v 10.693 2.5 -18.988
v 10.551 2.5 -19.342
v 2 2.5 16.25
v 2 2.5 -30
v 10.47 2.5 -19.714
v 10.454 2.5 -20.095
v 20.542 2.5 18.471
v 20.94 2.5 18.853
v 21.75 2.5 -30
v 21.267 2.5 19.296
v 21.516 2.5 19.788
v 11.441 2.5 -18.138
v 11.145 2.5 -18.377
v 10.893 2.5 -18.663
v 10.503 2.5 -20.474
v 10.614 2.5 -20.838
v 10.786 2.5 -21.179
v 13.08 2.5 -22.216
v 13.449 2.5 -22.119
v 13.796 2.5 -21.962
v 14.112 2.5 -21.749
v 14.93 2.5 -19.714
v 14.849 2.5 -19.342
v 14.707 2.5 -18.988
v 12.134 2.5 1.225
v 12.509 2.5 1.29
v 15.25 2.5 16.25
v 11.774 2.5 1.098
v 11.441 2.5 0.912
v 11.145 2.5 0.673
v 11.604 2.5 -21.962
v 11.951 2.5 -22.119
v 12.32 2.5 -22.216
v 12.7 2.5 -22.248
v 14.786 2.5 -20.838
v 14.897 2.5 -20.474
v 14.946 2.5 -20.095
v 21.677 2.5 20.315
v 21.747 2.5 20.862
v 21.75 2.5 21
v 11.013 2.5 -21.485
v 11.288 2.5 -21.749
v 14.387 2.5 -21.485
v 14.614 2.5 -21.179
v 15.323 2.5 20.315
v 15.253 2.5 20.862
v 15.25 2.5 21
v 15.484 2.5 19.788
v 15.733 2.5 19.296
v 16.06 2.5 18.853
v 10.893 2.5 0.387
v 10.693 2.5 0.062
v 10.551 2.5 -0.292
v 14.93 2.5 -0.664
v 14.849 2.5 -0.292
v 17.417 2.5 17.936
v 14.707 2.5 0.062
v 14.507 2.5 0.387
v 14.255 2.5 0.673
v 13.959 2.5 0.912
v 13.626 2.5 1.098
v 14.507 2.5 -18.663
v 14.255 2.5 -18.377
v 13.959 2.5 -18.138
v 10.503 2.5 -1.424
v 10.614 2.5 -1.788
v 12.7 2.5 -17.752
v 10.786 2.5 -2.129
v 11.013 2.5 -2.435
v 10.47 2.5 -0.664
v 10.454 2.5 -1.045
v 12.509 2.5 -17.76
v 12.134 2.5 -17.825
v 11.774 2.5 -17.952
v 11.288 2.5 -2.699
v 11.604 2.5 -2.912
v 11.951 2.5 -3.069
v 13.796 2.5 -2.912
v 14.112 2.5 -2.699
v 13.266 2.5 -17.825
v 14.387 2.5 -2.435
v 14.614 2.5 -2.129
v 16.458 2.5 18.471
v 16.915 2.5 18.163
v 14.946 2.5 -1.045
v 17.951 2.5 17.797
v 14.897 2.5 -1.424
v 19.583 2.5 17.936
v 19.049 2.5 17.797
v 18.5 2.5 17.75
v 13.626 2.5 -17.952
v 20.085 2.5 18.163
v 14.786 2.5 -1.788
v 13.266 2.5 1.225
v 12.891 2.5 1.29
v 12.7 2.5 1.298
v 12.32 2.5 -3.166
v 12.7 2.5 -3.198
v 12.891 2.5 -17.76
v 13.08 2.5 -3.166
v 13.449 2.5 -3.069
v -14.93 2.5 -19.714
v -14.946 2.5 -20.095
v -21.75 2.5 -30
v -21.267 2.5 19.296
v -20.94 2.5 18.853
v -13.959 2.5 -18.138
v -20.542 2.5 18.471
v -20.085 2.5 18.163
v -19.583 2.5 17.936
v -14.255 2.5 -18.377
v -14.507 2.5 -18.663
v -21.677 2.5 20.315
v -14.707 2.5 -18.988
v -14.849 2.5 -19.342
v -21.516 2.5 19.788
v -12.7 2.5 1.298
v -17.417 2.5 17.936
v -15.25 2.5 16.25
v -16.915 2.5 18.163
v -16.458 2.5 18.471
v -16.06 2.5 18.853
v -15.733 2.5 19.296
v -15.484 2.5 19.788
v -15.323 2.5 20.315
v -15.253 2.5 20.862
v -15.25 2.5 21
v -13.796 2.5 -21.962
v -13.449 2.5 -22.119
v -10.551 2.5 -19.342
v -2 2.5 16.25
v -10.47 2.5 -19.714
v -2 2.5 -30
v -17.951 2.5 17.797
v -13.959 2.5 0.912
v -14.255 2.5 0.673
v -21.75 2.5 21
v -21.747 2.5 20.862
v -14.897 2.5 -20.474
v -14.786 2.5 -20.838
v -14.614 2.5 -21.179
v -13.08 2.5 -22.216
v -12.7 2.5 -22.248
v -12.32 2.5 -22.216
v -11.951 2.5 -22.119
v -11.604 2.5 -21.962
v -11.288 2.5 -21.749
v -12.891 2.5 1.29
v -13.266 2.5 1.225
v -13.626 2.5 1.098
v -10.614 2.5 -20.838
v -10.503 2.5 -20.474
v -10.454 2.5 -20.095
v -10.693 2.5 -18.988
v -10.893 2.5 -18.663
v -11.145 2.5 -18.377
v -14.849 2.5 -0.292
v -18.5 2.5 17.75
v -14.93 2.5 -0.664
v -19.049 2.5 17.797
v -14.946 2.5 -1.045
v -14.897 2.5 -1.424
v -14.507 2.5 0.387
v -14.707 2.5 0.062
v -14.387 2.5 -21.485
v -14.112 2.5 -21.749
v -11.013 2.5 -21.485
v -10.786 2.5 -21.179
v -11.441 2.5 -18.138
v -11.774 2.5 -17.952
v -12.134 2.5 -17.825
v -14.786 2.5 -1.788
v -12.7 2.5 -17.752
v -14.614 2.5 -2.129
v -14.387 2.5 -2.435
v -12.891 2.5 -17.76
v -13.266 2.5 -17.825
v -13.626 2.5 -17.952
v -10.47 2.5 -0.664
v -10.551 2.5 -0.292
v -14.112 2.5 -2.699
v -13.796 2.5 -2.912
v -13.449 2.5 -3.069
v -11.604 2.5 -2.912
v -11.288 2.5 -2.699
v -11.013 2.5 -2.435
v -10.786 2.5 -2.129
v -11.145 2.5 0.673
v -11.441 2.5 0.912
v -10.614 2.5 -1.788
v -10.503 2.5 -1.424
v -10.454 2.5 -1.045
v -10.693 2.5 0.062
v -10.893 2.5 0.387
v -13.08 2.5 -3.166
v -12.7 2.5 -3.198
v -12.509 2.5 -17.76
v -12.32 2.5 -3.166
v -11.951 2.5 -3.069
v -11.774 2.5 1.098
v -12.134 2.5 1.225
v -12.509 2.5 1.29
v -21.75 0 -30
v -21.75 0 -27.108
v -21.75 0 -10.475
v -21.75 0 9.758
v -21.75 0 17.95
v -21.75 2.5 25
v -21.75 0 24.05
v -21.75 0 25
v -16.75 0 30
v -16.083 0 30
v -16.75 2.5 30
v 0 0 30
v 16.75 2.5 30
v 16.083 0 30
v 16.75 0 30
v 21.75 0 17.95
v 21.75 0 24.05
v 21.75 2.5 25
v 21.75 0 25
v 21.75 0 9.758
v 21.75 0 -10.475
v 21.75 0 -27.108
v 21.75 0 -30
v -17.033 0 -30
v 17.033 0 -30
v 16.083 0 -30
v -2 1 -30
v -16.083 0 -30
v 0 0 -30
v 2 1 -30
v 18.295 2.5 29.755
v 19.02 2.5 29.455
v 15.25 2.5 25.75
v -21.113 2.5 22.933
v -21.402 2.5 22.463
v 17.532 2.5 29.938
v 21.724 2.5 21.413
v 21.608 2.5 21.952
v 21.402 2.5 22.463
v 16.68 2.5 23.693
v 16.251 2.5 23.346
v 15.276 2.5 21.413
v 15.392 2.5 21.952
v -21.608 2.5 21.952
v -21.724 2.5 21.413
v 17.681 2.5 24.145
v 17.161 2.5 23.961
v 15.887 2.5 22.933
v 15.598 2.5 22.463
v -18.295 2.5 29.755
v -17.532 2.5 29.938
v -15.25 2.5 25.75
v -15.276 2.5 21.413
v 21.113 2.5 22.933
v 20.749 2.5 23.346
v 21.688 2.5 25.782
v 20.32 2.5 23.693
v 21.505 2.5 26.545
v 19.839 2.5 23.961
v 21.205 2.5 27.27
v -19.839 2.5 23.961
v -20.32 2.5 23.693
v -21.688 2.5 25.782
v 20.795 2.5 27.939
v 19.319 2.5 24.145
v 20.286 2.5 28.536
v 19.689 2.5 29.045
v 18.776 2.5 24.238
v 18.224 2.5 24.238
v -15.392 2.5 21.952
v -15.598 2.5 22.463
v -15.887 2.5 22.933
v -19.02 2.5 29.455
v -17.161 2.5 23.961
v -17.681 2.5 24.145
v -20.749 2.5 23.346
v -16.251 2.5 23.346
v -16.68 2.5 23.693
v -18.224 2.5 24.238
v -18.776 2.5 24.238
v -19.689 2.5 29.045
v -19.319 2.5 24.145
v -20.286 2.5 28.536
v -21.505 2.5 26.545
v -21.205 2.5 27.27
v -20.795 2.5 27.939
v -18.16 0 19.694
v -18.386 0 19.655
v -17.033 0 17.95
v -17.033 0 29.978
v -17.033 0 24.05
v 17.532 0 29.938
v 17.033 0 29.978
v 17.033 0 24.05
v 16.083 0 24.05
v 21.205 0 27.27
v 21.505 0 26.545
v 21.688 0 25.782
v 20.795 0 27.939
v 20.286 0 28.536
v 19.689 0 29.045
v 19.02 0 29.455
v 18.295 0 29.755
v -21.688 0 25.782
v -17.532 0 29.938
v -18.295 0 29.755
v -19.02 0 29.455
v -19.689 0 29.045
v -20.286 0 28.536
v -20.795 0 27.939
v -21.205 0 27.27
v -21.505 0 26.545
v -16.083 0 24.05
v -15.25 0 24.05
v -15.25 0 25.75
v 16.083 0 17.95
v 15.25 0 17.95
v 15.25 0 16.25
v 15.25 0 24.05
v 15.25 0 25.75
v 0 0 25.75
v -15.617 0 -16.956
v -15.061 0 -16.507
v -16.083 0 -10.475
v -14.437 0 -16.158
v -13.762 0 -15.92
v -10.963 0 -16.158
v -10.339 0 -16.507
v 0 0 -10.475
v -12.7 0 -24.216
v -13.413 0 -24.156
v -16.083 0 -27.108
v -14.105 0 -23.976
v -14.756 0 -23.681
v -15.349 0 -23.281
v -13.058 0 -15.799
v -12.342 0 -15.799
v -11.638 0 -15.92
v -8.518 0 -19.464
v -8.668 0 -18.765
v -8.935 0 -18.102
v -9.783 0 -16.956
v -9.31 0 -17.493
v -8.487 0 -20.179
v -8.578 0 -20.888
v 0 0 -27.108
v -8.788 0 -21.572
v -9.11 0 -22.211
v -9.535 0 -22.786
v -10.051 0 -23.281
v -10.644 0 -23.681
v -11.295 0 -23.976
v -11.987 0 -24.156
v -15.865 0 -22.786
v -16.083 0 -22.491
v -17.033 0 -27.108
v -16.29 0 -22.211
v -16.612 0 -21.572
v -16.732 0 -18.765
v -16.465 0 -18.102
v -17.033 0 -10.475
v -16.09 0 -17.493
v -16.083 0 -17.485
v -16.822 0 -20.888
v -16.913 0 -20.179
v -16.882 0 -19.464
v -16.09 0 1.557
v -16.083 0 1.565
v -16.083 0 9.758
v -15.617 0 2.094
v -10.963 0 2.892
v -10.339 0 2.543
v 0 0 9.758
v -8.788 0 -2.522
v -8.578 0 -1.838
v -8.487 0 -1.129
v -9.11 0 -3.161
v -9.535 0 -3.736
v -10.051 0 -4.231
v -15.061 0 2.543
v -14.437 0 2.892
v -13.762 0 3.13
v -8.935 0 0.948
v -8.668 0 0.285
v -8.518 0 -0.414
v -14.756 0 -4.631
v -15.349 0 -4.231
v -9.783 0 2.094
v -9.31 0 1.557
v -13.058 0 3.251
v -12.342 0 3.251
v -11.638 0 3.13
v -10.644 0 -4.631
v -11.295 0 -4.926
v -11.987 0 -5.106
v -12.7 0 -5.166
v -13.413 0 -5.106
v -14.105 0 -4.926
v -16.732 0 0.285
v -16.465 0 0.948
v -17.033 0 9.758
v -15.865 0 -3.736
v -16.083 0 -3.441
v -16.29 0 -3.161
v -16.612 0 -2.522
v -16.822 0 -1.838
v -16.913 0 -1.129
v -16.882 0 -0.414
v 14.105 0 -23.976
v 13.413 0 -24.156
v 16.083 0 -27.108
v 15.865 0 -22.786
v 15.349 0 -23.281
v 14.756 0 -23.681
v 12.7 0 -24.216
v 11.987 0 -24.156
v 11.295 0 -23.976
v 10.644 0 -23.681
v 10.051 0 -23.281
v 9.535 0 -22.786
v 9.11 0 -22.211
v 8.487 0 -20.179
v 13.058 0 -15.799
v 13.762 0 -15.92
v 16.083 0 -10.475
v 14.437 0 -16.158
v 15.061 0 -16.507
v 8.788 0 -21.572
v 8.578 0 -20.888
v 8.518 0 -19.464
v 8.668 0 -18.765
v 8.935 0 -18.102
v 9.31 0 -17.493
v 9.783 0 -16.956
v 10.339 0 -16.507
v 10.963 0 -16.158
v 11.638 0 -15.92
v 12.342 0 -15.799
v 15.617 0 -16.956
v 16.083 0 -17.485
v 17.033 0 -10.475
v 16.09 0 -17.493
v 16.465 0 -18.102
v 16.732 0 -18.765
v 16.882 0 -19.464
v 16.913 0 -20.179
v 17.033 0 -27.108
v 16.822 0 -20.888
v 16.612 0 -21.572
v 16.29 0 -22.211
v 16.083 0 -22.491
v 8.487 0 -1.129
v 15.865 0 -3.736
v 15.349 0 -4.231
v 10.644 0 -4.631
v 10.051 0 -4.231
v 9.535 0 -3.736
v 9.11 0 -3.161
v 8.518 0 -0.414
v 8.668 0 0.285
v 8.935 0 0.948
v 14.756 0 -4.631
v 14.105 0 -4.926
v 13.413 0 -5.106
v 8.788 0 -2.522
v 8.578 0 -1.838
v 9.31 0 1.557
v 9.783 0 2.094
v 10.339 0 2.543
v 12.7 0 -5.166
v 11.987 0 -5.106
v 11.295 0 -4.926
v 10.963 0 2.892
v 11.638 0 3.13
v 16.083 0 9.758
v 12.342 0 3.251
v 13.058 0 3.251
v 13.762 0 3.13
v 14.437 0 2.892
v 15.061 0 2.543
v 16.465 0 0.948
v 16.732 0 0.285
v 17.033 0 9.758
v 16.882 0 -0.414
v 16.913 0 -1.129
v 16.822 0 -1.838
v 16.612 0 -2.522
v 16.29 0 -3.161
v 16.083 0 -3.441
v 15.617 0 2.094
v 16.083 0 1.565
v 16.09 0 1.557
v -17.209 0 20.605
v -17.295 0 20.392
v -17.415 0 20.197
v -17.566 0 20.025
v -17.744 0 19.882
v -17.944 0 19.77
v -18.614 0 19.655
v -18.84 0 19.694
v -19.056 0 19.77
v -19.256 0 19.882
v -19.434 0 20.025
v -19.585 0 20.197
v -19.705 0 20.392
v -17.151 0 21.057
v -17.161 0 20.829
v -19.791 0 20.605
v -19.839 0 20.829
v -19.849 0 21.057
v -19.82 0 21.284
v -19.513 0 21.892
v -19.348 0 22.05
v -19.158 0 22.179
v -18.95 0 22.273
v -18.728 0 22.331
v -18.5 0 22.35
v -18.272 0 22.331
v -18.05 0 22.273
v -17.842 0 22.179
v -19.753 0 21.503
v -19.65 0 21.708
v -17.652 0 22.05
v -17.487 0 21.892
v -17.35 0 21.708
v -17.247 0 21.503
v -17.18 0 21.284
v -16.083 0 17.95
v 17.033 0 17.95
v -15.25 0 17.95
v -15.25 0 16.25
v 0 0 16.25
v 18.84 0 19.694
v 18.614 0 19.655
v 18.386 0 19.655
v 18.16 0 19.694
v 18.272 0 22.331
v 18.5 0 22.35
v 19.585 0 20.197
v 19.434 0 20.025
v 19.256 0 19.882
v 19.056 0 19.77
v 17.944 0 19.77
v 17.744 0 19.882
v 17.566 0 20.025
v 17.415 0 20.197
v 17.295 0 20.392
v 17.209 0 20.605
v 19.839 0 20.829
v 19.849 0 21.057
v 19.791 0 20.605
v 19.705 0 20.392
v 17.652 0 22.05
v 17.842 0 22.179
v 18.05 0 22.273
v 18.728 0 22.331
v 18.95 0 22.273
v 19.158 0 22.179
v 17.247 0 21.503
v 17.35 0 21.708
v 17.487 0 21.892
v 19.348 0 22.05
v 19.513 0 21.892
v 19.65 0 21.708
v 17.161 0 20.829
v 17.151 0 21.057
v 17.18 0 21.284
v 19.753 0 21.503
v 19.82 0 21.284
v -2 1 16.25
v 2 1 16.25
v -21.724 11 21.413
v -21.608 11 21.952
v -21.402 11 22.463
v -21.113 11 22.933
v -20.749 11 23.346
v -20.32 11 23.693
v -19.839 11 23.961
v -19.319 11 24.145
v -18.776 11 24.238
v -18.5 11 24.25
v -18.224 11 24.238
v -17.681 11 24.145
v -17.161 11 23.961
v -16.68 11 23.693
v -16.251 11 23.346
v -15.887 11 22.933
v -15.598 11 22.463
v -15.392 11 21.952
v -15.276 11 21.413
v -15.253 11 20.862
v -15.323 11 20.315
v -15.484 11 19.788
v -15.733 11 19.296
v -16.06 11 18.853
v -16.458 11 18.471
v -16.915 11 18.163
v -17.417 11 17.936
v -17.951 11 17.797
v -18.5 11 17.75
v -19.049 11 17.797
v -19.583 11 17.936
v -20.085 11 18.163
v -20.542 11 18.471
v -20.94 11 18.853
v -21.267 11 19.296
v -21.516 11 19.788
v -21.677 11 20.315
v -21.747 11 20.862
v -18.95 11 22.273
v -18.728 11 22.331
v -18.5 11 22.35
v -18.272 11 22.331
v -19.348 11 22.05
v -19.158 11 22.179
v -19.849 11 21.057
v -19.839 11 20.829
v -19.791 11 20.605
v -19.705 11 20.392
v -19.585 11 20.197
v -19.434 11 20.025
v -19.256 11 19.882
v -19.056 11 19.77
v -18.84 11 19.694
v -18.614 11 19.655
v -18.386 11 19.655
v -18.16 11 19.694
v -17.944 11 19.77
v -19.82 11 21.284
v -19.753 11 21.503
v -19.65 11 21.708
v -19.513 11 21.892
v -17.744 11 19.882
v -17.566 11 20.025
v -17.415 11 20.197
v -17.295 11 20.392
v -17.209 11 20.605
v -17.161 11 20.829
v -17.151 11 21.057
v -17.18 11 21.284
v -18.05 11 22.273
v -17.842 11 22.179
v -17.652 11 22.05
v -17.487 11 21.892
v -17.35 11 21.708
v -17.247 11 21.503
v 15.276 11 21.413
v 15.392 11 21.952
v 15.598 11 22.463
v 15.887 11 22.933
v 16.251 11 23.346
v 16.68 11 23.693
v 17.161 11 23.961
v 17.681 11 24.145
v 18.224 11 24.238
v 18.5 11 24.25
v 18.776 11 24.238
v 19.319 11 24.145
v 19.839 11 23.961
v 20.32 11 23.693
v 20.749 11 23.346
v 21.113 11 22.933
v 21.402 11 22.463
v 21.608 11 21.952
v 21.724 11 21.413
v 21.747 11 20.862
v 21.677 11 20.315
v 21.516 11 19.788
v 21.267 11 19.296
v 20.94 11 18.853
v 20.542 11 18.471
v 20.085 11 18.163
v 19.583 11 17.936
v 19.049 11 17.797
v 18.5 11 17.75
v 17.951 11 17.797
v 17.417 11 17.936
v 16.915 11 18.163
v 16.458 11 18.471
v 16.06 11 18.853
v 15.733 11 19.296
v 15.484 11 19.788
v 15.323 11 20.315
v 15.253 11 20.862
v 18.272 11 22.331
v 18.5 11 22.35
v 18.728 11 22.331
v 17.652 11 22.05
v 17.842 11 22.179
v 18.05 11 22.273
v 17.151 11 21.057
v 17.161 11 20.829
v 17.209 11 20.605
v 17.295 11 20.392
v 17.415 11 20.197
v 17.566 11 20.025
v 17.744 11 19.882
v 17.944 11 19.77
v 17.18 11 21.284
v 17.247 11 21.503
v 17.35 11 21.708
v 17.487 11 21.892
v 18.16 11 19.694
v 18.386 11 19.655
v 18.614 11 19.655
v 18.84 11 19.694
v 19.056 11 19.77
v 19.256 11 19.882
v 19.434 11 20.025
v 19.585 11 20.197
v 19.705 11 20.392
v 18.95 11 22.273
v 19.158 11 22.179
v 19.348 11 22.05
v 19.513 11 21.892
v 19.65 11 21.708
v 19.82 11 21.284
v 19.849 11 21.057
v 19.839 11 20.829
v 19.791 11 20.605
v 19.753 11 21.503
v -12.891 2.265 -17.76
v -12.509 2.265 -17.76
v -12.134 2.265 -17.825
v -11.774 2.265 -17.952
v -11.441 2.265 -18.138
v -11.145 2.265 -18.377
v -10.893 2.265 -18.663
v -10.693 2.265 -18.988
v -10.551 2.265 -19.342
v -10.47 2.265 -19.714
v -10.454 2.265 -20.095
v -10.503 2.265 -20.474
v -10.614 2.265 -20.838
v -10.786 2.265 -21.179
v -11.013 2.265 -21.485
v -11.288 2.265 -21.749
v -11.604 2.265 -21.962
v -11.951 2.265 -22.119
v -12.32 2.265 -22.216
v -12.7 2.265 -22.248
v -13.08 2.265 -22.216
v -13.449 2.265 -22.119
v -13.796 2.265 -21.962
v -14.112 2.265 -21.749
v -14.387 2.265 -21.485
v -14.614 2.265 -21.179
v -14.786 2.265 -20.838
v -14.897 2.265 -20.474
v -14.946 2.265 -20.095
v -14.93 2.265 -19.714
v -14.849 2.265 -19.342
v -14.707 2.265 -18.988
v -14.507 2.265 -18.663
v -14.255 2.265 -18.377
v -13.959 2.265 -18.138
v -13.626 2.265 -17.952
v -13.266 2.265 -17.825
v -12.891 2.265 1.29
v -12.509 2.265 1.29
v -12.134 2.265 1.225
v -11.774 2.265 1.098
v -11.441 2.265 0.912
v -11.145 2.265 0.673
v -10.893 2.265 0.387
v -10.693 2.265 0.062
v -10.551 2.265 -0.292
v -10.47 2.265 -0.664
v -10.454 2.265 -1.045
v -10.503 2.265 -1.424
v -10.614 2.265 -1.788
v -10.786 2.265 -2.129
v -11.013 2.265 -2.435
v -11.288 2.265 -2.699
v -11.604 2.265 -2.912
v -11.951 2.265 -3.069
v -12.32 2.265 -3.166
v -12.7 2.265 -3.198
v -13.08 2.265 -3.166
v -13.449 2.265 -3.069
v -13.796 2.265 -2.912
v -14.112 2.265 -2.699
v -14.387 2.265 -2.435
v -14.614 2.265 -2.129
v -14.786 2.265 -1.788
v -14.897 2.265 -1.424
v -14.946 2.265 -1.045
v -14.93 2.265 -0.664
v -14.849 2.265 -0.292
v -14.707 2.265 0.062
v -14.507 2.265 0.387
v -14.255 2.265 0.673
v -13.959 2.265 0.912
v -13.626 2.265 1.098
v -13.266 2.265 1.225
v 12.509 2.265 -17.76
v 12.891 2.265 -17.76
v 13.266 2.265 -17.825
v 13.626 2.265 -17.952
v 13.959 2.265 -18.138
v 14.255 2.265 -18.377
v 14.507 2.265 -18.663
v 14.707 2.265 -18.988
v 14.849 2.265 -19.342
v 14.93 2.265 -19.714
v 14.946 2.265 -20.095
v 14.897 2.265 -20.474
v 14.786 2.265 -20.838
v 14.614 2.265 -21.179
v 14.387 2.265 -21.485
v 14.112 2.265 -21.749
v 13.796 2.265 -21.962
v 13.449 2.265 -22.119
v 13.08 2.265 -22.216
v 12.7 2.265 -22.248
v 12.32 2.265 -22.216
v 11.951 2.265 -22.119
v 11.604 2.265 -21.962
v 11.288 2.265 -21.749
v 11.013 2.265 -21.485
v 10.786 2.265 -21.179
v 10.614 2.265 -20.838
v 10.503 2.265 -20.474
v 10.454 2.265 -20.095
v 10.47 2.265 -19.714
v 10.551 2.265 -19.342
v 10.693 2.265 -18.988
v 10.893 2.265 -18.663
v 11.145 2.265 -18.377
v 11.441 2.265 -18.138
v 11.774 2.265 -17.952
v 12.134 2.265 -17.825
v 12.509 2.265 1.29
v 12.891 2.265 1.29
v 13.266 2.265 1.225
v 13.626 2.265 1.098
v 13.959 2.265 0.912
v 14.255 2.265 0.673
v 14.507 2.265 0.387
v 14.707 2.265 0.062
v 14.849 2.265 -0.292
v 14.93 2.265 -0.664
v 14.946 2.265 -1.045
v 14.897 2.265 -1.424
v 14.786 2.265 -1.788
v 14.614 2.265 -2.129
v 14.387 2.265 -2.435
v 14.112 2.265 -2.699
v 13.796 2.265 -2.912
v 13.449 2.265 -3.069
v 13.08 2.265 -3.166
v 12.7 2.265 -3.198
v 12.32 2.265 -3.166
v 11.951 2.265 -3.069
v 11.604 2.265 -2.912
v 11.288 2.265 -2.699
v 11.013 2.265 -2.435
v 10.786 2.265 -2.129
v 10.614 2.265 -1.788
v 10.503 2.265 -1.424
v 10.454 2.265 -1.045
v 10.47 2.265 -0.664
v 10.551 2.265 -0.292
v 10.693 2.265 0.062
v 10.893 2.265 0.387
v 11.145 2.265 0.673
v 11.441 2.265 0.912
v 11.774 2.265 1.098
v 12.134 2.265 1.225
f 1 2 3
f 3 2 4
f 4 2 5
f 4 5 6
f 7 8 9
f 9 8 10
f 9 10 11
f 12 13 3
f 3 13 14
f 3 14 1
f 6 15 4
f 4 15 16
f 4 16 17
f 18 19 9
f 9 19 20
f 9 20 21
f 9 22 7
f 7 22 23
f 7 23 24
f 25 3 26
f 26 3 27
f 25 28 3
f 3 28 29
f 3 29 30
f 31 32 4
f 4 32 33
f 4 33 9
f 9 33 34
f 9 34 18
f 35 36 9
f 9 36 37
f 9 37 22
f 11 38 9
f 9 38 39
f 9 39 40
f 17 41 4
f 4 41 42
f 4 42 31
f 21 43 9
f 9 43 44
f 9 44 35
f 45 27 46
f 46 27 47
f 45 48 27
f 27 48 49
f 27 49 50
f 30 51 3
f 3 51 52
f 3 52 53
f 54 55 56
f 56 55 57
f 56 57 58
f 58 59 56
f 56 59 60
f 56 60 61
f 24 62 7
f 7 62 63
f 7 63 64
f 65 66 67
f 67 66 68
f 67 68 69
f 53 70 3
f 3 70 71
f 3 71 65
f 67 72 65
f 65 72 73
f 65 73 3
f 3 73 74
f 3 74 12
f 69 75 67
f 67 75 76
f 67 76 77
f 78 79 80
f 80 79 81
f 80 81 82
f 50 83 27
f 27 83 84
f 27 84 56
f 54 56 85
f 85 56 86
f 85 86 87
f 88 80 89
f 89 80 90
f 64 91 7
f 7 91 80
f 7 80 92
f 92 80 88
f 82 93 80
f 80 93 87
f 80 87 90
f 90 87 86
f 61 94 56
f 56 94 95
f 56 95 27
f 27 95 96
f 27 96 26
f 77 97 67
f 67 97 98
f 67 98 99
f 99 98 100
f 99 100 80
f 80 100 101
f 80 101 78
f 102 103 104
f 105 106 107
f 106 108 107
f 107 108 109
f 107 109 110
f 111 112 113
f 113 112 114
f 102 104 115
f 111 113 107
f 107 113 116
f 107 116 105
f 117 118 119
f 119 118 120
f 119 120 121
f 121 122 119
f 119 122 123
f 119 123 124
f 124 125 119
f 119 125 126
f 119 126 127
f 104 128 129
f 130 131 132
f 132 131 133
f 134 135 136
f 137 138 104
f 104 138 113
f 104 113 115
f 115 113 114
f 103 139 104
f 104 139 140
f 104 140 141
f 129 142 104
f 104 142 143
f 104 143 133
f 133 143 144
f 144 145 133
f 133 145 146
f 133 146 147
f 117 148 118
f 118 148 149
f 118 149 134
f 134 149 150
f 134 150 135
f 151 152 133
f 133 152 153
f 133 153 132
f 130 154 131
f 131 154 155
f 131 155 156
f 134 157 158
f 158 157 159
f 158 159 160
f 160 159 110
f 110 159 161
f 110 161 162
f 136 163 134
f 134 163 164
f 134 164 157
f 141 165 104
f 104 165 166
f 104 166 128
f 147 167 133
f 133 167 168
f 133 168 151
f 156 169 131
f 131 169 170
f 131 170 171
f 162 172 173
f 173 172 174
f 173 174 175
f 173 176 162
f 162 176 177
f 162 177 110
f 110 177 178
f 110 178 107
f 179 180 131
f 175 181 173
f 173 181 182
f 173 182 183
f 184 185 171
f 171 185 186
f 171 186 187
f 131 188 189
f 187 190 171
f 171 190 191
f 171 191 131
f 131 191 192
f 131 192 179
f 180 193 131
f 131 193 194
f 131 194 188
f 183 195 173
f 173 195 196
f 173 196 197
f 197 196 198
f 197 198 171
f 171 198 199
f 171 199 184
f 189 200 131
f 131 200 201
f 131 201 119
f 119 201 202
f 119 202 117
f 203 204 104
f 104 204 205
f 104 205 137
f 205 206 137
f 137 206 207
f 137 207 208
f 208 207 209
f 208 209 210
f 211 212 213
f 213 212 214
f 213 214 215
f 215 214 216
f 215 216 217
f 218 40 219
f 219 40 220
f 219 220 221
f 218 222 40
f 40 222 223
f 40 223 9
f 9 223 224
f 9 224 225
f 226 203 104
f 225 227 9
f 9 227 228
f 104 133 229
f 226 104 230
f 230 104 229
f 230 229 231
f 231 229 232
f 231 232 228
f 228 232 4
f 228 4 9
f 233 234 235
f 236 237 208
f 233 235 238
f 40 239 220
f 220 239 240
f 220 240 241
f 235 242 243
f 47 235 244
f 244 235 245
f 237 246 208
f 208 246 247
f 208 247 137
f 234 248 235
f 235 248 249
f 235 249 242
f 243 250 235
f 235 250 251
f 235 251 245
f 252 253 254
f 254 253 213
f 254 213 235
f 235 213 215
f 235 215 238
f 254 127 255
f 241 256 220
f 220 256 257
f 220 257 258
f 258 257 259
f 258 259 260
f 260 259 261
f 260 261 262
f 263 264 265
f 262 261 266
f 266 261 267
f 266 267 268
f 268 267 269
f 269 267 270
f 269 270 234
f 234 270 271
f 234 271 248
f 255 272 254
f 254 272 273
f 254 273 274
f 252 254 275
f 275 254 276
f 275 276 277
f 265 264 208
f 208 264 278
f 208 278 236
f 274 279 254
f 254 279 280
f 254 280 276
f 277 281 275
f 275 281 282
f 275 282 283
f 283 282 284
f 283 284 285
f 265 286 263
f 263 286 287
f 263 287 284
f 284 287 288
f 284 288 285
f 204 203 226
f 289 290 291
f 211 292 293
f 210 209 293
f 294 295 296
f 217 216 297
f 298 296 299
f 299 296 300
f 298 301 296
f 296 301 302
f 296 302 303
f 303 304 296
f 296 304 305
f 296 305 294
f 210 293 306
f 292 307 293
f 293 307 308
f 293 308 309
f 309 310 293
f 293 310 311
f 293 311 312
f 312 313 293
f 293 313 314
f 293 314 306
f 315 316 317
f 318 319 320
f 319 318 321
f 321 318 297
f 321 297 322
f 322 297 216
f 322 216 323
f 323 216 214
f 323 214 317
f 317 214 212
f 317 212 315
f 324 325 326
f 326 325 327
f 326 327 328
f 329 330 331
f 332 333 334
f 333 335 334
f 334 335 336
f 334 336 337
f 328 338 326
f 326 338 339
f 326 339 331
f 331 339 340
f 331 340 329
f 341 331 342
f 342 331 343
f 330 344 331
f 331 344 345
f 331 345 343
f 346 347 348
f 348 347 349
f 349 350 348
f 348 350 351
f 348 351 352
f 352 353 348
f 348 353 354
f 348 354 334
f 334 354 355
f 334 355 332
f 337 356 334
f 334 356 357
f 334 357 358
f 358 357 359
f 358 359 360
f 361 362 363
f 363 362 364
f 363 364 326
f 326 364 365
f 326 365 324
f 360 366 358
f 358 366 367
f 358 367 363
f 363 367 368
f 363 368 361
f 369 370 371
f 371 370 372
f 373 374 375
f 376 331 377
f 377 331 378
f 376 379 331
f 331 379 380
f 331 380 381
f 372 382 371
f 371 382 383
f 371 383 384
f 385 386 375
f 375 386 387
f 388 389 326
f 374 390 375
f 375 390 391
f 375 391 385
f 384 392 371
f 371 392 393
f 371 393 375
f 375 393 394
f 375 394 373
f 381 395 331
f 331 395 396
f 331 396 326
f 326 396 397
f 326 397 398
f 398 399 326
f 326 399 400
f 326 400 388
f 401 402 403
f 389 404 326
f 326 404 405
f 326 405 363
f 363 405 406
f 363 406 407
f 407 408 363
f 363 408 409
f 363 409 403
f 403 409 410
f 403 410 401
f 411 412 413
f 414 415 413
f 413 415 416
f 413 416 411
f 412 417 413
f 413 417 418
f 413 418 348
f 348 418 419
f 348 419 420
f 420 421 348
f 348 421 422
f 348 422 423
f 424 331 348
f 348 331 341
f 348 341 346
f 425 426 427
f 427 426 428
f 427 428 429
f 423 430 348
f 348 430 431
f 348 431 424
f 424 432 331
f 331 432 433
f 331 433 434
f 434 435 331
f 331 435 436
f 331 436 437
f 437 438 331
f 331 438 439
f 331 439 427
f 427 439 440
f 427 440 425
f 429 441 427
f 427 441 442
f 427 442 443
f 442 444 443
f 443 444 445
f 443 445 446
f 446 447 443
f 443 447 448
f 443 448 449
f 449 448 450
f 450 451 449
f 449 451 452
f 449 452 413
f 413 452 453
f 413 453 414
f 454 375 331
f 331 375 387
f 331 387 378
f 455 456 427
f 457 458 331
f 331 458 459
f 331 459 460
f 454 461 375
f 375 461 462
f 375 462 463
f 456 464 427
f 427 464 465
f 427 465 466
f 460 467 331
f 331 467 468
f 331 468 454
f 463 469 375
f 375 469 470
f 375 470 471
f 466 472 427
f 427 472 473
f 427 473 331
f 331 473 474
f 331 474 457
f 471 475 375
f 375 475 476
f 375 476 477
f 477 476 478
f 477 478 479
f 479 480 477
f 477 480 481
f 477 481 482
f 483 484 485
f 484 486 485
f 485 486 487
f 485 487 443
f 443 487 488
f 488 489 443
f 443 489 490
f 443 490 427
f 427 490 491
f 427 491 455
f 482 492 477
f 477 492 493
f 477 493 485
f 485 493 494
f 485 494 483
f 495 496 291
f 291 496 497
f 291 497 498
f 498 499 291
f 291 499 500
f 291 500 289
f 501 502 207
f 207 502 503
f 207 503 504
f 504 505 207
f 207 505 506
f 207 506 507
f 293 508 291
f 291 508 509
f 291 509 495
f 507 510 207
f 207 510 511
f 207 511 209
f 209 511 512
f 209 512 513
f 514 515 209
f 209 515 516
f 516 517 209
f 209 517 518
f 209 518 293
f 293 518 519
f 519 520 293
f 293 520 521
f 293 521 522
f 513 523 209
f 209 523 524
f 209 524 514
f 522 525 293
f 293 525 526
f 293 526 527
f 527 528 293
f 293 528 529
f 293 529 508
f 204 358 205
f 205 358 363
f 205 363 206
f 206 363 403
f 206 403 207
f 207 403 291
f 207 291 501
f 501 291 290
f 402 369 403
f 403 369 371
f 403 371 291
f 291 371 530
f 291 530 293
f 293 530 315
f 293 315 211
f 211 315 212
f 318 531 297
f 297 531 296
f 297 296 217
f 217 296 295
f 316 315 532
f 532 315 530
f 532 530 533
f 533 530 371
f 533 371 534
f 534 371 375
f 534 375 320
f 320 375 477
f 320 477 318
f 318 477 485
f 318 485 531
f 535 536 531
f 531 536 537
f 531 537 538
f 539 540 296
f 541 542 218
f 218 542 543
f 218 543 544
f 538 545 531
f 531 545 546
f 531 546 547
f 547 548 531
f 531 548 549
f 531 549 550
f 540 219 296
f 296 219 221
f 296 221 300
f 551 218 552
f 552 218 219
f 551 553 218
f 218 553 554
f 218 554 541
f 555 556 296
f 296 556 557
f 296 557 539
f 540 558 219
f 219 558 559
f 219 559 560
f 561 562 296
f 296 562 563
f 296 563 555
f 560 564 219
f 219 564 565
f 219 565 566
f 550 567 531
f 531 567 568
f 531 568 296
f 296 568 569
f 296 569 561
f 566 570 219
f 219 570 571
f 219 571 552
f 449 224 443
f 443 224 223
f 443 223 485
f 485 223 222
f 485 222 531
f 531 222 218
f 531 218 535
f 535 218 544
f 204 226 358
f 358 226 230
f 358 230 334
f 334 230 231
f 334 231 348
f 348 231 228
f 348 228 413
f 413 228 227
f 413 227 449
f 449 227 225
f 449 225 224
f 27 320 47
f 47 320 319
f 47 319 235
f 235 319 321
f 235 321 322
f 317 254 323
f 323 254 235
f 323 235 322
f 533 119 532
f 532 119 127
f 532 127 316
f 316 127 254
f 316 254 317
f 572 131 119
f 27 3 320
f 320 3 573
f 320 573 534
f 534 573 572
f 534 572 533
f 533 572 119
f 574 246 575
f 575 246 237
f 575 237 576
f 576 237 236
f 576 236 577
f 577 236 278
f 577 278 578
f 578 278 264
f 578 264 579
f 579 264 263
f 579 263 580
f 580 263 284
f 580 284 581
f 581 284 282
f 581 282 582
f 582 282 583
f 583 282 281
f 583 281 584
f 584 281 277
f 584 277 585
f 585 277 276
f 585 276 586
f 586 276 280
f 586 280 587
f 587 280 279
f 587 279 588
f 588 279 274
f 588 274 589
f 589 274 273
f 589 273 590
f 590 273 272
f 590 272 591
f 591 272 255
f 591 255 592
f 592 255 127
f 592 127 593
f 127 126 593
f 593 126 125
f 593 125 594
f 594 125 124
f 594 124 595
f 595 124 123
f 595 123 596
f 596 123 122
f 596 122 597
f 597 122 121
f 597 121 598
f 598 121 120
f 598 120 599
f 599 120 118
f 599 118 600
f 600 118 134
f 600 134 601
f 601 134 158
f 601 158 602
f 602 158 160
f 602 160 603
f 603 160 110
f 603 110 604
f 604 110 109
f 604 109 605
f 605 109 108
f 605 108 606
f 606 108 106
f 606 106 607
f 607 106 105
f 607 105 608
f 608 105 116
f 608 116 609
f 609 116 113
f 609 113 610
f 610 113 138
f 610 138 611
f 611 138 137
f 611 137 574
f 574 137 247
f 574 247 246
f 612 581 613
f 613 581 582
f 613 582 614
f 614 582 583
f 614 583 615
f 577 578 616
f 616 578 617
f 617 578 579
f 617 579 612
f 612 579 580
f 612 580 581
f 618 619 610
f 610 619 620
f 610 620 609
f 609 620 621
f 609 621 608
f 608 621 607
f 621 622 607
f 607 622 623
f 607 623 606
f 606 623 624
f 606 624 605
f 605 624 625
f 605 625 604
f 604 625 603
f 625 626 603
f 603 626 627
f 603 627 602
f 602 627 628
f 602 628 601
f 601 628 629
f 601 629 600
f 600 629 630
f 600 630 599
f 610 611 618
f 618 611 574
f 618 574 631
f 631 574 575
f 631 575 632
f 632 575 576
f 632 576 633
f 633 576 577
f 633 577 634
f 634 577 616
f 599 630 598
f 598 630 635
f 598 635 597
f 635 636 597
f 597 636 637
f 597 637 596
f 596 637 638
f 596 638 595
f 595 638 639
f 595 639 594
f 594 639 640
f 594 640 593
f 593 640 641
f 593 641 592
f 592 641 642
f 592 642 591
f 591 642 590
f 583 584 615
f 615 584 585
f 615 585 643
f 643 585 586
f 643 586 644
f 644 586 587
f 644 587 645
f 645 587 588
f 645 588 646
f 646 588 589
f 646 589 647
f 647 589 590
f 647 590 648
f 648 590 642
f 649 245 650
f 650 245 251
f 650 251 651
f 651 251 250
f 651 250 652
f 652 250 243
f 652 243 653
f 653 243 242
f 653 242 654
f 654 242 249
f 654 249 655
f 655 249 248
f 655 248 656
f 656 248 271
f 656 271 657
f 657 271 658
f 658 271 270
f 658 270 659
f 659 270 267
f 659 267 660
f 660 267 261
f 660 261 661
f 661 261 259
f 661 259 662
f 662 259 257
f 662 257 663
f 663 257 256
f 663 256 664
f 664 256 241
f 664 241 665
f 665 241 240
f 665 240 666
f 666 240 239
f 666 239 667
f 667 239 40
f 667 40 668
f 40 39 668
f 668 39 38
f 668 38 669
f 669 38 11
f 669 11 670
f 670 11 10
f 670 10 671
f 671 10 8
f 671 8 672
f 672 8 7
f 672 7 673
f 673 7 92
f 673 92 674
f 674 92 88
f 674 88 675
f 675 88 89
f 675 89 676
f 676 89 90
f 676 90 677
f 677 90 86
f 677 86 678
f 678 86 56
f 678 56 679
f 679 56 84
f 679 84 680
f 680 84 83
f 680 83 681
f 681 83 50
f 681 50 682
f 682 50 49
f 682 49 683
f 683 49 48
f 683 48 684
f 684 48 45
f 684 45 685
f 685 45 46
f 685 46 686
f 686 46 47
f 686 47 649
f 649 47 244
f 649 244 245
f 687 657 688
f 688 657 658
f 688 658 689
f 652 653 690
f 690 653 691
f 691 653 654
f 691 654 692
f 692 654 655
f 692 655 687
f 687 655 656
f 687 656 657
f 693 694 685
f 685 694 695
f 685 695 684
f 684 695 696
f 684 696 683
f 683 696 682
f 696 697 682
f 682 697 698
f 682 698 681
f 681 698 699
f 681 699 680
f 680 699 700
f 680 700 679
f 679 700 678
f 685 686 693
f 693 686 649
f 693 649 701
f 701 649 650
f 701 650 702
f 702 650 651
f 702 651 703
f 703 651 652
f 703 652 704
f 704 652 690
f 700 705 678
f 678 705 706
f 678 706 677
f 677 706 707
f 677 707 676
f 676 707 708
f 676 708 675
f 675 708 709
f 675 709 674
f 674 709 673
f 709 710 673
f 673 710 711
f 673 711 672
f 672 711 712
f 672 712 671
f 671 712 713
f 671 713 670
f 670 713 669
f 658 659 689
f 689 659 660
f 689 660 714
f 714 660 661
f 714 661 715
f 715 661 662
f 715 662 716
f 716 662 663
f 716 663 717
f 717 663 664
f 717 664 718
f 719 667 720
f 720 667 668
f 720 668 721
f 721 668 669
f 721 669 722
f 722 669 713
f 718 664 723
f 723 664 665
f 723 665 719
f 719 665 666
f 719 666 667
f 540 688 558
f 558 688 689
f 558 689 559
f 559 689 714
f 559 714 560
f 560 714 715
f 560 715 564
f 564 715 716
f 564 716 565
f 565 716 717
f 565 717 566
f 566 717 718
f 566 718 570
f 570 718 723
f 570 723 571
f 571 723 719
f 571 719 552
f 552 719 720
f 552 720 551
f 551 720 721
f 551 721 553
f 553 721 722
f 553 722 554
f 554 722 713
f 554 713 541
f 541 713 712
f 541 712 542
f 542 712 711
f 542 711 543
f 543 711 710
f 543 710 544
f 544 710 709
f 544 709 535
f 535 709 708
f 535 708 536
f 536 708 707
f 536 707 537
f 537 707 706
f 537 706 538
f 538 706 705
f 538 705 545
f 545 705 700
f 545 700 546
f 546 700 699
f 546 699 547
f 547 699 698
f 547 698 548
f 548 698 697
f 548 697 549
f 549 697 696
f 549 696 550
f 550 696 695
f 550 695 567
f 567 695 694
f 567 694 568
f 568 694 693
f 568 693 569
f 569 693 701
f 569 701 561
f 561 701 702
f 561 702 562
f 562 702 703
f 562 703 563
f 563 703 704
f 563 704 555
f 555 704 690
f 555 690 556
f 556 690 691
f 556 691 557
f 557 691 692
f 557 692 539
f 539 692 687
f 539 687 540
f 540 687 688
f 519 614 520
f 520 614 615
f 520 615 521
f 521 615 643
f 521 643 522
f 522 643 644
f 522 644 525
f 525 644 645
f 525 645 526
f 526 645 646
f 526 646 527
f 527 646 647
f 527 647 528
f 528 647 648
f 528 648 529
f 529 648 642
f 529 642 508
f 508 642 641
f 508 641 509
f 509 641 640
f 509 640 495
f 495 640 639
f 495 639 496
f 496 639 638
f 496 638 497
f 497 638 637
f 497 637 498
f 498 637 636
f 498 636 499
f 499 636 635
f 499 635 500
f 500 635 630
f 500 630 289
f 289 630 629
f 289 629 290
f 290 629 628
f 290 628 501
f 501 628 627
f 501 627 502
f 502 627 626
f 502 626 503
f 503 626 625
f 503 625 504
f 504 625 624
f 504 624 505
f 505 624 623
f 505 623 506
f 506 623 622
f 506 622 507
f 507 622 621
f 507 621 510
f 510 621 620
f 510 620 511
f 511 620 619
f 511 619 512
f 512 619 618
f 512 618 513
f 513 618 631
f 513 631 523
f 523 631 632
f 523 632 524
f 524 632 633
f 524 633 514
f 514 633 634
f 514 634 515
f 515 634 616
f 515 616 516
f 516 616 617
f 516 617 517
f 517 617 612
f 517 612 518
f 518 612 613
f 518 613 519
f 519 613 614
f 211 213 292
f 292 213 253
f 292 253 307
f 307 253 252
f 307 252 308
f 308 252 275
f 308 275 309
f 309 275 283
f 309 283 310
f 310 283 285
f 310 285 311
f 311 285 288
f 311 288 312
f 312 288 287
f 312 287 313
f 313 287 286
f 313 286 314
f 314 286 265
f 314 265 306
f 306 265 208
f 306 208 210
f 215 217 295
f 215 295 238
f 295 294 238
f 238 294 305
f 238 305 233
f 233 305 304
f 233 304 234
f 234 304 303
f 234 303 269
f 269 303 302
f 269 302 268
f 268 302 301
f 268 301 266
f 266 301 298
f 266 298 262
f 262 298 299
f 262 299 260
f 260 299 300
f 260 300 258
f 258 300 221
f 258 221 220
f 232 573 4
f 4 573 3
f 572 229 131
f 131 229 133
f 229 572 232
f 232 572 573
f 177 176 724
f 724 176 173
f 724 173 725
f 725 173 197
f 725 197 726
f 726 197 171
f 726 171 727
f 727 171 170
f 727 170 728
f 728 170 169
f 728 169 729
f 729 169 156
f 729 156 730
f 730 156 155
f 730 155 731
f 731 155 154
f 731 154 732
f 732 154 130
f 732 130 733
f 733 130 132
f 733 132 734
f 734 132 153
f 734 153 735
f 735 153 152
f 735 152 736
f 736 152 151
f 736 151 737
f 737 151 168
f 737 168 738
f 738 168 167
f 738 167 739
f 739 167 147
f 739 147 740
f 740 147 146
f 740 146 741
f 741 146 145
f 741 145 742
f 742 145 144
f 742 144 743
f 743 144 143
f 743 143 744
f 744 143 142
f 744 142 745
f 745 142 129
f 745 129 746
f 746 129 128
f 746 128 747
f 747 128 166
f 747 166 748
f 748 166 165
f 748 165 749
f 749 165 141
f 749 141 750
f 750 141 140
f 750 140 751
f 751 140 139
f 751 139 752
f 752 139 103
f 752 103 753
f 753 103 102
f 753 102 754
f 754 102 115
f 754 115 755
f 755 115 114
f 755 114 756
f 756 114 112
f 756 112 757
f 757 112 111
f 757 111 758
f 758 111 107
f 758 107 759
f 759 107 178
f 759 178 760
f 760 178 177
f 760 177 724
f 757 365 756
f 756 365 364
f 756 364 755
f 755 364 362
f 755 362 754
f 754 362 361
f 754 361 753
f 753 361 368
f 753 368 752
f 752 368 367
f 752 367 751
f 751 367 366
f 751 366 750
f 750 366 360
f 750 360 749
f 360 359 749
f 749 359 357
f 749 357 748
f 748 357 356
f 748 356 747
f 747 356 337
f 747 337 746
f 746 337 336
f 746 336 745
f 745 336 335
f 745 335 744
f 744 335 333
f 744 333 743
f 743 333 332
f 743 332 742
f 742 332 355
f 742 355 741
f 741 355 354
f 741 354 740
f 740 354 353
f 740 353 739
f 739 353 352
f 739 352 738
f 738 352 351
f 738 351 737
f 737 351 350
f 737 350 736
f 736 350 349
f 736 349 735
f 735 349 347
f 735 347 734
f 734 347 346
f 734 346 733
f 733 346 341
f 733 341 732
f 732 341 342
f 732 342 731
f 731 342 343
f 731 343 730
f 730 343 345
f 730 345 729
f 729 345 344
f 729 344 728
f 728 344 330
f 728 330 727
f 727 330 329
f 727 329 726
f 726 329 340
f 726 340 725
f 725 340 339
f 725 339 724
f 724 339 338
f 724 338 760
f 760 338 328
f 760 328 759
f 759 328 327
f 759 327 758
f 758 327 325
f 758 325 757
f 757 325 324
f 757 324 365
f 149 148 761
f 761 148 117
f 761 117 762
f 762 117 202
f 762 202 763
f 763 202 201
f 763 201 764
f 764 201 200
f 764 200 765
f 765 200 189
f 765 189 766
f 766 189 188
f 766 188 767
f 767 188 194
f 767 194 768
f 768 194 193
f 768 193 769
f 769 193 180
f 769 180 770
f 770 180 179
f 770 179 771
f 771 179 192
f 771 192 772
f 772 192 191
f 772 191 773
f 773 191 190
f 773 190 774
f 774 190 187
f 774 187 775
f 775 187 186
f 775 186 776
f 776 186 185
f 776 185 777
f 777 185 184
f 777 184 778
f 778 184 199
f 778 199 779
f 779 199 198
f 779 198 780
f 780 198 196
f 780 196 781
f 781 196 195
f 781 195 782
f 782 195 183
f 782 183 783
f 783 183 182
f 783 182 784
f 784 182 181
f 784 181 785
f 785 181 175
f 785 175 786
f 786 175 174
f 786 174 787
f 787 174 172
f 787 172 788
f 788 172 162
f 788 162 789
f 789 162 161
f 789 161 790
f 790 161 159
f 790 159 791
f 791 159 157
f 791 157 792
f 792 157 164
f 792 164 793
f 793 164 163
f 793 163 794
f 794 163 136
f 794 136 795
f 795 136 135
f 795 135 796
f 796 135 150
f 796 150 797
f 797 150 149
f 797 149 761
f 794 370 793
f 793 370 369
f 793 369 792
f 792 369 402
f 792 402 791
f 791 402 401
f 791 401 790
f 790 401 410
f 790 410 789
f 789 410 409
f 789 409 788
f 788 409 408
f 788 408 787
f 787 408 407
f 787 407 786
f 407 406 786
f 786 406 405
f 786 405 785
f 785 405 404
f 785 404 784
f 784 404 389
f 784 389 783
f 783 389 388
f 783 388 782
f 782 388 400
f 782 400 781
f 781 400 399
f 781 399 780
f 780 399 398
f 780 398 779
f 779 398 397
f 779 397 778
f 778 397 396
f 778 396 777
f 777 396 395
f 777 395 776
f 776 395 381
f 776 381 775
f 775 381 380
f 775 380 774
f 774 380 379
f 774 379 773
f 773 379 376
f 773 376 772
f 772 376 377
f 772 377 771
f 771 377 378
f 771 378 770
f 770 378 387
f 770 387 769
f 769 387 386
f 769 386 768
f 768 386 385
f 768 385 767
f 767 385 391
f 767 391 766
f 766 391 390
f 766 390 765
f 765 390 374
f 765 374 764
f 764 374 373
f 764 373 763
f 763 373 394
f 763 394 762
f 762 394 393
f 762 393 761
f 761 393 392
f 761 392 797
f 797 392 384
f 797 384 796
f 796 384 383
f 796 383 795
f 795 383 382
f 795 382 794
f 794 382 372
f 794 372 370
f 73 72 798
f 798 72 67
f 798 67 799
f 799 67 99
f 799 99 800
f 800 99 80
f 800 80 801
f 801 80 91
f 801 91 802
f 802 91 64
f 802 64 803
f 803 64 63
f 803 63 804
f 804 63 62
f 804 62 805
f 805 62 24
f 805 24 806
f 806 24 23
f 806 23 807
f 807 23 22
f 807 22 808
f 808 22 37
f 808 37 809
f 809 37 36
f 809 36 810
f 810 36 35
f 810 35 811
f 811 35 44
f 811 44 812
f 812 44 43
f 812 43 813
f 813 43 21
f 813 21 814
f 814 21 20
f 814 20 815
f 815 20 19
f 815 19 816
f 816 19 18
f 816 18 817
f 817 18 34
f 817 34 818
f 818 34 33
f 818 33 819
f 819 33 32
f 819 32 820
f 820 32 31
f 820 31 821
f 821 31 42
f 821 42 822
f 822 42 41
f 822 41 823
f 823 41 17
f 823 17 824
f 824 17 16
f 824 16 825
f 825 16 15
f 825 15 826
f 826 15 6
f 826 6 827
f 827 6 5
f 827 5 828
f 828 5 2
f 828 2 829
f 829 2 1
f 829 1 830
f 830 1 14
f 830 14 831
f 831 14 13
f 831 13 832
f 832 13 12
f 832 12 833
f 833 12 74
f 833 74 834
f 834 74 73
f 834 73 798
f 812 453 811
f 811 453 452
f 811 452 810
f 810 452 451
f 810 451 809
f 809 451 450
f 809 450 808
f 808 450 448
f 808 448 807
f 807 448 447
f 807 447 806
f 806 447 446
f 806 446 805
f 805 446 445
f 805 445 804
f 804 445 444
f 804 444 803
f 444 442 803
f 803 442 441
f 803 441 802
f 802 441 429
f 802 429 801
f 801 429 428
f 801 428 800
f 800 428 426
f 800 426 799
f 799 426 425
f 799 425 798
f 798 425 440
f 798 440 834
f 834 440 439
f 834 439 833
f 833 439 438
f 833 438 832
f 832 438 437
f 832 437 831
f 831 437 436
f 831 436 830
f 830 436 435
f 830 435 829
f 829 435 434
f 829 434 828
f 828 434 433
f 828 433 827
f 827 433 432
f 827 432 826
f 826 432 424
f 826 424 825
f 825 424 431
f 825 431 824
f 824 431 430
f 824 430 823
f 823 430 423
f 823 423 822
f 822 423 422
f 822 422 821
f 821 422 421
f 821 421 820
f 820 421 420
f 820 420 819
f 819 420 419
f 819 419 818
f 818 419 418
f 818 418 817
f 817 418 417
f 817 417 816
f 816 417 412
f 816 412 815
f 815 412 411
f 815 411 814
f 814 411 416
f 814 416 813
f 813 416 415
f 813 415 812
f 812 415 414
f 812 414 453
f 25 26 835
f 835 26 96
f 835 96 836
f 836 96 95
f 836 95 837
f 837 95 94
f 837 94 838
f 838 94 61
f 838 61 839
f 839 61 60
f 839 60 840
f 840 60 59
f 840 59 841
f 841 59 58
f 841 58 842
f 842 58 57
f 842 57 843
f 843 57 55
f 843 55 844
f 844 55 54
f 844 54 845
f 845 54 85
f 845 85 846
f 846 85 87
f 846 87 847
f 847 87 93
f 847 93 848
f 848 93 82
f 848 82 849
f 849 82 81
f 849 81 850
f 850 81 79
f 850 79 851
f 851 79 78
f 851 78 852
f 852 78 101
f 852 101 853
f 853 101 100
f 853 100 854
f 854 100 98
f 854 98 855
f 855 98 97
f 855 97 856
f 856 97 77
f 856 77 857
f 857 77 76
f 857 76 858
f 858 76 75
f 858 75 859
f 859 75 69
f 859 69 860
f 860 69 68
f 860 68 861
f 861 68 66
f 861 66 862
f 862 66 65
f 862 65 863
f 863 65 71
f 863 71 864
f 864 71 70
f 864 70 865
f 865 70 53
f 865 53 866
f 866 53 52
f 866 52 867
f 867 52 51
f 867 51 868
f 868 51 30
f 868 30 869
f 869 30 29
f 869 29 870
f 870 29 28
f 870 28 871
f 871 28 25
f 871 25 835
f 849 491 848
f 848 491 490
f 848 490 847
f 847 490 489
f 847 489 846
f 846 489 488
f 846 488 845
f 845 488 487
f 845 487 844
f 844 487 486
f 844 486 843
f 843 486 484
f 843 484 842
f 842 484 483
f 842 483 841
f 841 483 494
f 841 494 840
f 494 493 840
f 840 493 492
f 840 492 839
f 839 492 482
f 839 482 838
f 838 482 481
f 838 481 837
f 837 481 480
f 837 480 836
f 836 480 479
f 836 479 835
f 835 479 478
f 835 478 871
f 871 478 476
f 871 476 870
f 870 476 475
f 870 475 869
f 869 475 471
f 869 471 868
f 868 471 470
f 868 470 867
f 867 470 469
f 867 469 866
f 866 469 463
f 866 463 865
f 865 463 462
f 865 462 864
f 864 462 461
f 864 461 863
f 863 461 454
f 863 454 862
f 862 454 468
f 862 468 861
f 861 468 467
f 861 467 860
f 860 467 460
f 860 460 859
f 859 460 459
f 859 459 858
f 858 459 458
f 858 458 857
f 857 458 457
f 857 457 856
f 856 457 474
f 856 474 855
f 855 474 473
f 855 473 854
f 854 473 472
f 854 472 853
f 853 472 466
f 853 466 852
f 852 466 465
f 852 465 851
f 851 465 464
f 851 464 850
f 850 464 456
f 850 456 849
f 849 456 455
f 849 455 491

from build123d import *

# Parameters (mm, degrees)
SKETCH2_W                                      = 43.5
SKETCH2_H                                      = 60
BOSS_EXTRUDE1_DEPTH                            = 2.5
SKETCH3_W                                      = 30.5
SKETCH3_H                                      = 9.5
CUT_EXTRUDE1_DEPTH                             = 38.13909665
SKETCH4_R                                      = 3.25
BOSS_EXTRUDE2_DEPTH                            = 8.5
TAP_DRILL_FOR_M3X0_5_TAP1_D                    = 2.7
FILLET1_R                                      = 5
SKETCH7_W                                      = 4
SKETCH7_H                                      = 46.25
CUT_EXTRUDE2_DEPTH                             = 1.5
CSK_FOR_8_FLAT_HEAD_MACHINE_SCREW1_D           = 4.4958
CSK_FOR_8_FLAT_HEAD_MACHINE_SCREW1_CSINK_D     = 8.4328
CSK_FOR_8_FLAT_HEAD_MACHINE_SCREW1_CSINK_ANGLE = 82


with BuildPart() as part:
    # Sketch2 → Boss-Extrude1 (new body)
    with BuildSketch(Plane(origin=(0, 0, 0), x_dir=(1, 0, 0), z_dir=(0, 1, 0))):
        Rectangle(SKETCH2_W, SKETCH2_H)
    extrude(amount=BOSS_EXTRUDE1_DEPTH)

    # Sketch3 → Cut-Extrude1 (cut, through all)
    with BuildSketch(Plane(origin=(0, 2.5, 0), x_dir=(1, 0, 0), z_dir=(0, 1, 0))):
        with Locations((0, -21)):
            Rectangle(SKETCH3_W, SKETCH3_H)
    extrude(amount=-CUT_EXTRUDE1_DEPTH, mode=Mode.SUBTRACT)

    # Sketch4 → Boss-Extrude2 (add)
    with BuildSketch(Plane(origin=(0, 2.5, 0), x_dir=(1, 0, 0), z_dir=(0, 1, 0))):
        with Locations(Location((-18.5, -21, 0), (0, 0, 180))):
            Circle(SKETCH4_R)
        with Locations(Location((18.5, -21, 0), (0, 0, 180))):
            Circle(SKETCH4_R)
    extrude(amount=BOSS_EXTRUDE2_DEPTH)

    # Tap Drill for M3x0.5 Tap1 (through all)
    with Locations(Plane(origin=(0, 11, 0), x_dir=(1, 0, 0), z_dir=(0, 1, 0))):
        with Locations((-18.5, -21), (18.5, -21)):
            Hole(TAP_DRILL_FOR_M3X0_5_TAP1_D / 2)

    # Fillet1
    fillet1_edges = [part.edges().sort_by_distance(p)[0] for p in [
        (21.75, 1.25, 30),
        (-21.75, 1.25, 30),
    ]]
    fillet(fillet1_edges, radius=FILLET1_R)

    # Sketch7 → Cut-Extrude2 (cut)
    with BuildSketch(Plane(origin=(0, 2.5, 0), x_dir=(1, 0, 0), z_dir=(0, 1, 0))):
        with Locations((0, 6.875)):
            Rectangle(SKETCH7_W, SKETCH7_H)
    extrude(amount=-CUT_EXTRUDE2_DEPTH, mode=Mode.SUBTRACT)

    # CSK for #8 Flat Head Machine Screw1 (through all)
    with Locations(Plane(origin=(0, 0, 0), x_dir=(-1, 0, 0), z_dir=(0, -1, 0))):
        with Locations((-12.7, 0.95), (-12.7, 20), (12.7, 0.95), (12.7, 20)):
            CounterSinkHole(CSK_FOR_8_FLAT_HEAD_MACHINE_SCREW1_D / 2, CSK_FOR_8_FLAT_HEAD_MACHINE_SCREW1_CSINK_D / 2, counter_sink_angle=CSK_FOR_8_FLAT_HEAD_MACHINE_SCREW1_CSINK_ANGLE)


solid = part.part
